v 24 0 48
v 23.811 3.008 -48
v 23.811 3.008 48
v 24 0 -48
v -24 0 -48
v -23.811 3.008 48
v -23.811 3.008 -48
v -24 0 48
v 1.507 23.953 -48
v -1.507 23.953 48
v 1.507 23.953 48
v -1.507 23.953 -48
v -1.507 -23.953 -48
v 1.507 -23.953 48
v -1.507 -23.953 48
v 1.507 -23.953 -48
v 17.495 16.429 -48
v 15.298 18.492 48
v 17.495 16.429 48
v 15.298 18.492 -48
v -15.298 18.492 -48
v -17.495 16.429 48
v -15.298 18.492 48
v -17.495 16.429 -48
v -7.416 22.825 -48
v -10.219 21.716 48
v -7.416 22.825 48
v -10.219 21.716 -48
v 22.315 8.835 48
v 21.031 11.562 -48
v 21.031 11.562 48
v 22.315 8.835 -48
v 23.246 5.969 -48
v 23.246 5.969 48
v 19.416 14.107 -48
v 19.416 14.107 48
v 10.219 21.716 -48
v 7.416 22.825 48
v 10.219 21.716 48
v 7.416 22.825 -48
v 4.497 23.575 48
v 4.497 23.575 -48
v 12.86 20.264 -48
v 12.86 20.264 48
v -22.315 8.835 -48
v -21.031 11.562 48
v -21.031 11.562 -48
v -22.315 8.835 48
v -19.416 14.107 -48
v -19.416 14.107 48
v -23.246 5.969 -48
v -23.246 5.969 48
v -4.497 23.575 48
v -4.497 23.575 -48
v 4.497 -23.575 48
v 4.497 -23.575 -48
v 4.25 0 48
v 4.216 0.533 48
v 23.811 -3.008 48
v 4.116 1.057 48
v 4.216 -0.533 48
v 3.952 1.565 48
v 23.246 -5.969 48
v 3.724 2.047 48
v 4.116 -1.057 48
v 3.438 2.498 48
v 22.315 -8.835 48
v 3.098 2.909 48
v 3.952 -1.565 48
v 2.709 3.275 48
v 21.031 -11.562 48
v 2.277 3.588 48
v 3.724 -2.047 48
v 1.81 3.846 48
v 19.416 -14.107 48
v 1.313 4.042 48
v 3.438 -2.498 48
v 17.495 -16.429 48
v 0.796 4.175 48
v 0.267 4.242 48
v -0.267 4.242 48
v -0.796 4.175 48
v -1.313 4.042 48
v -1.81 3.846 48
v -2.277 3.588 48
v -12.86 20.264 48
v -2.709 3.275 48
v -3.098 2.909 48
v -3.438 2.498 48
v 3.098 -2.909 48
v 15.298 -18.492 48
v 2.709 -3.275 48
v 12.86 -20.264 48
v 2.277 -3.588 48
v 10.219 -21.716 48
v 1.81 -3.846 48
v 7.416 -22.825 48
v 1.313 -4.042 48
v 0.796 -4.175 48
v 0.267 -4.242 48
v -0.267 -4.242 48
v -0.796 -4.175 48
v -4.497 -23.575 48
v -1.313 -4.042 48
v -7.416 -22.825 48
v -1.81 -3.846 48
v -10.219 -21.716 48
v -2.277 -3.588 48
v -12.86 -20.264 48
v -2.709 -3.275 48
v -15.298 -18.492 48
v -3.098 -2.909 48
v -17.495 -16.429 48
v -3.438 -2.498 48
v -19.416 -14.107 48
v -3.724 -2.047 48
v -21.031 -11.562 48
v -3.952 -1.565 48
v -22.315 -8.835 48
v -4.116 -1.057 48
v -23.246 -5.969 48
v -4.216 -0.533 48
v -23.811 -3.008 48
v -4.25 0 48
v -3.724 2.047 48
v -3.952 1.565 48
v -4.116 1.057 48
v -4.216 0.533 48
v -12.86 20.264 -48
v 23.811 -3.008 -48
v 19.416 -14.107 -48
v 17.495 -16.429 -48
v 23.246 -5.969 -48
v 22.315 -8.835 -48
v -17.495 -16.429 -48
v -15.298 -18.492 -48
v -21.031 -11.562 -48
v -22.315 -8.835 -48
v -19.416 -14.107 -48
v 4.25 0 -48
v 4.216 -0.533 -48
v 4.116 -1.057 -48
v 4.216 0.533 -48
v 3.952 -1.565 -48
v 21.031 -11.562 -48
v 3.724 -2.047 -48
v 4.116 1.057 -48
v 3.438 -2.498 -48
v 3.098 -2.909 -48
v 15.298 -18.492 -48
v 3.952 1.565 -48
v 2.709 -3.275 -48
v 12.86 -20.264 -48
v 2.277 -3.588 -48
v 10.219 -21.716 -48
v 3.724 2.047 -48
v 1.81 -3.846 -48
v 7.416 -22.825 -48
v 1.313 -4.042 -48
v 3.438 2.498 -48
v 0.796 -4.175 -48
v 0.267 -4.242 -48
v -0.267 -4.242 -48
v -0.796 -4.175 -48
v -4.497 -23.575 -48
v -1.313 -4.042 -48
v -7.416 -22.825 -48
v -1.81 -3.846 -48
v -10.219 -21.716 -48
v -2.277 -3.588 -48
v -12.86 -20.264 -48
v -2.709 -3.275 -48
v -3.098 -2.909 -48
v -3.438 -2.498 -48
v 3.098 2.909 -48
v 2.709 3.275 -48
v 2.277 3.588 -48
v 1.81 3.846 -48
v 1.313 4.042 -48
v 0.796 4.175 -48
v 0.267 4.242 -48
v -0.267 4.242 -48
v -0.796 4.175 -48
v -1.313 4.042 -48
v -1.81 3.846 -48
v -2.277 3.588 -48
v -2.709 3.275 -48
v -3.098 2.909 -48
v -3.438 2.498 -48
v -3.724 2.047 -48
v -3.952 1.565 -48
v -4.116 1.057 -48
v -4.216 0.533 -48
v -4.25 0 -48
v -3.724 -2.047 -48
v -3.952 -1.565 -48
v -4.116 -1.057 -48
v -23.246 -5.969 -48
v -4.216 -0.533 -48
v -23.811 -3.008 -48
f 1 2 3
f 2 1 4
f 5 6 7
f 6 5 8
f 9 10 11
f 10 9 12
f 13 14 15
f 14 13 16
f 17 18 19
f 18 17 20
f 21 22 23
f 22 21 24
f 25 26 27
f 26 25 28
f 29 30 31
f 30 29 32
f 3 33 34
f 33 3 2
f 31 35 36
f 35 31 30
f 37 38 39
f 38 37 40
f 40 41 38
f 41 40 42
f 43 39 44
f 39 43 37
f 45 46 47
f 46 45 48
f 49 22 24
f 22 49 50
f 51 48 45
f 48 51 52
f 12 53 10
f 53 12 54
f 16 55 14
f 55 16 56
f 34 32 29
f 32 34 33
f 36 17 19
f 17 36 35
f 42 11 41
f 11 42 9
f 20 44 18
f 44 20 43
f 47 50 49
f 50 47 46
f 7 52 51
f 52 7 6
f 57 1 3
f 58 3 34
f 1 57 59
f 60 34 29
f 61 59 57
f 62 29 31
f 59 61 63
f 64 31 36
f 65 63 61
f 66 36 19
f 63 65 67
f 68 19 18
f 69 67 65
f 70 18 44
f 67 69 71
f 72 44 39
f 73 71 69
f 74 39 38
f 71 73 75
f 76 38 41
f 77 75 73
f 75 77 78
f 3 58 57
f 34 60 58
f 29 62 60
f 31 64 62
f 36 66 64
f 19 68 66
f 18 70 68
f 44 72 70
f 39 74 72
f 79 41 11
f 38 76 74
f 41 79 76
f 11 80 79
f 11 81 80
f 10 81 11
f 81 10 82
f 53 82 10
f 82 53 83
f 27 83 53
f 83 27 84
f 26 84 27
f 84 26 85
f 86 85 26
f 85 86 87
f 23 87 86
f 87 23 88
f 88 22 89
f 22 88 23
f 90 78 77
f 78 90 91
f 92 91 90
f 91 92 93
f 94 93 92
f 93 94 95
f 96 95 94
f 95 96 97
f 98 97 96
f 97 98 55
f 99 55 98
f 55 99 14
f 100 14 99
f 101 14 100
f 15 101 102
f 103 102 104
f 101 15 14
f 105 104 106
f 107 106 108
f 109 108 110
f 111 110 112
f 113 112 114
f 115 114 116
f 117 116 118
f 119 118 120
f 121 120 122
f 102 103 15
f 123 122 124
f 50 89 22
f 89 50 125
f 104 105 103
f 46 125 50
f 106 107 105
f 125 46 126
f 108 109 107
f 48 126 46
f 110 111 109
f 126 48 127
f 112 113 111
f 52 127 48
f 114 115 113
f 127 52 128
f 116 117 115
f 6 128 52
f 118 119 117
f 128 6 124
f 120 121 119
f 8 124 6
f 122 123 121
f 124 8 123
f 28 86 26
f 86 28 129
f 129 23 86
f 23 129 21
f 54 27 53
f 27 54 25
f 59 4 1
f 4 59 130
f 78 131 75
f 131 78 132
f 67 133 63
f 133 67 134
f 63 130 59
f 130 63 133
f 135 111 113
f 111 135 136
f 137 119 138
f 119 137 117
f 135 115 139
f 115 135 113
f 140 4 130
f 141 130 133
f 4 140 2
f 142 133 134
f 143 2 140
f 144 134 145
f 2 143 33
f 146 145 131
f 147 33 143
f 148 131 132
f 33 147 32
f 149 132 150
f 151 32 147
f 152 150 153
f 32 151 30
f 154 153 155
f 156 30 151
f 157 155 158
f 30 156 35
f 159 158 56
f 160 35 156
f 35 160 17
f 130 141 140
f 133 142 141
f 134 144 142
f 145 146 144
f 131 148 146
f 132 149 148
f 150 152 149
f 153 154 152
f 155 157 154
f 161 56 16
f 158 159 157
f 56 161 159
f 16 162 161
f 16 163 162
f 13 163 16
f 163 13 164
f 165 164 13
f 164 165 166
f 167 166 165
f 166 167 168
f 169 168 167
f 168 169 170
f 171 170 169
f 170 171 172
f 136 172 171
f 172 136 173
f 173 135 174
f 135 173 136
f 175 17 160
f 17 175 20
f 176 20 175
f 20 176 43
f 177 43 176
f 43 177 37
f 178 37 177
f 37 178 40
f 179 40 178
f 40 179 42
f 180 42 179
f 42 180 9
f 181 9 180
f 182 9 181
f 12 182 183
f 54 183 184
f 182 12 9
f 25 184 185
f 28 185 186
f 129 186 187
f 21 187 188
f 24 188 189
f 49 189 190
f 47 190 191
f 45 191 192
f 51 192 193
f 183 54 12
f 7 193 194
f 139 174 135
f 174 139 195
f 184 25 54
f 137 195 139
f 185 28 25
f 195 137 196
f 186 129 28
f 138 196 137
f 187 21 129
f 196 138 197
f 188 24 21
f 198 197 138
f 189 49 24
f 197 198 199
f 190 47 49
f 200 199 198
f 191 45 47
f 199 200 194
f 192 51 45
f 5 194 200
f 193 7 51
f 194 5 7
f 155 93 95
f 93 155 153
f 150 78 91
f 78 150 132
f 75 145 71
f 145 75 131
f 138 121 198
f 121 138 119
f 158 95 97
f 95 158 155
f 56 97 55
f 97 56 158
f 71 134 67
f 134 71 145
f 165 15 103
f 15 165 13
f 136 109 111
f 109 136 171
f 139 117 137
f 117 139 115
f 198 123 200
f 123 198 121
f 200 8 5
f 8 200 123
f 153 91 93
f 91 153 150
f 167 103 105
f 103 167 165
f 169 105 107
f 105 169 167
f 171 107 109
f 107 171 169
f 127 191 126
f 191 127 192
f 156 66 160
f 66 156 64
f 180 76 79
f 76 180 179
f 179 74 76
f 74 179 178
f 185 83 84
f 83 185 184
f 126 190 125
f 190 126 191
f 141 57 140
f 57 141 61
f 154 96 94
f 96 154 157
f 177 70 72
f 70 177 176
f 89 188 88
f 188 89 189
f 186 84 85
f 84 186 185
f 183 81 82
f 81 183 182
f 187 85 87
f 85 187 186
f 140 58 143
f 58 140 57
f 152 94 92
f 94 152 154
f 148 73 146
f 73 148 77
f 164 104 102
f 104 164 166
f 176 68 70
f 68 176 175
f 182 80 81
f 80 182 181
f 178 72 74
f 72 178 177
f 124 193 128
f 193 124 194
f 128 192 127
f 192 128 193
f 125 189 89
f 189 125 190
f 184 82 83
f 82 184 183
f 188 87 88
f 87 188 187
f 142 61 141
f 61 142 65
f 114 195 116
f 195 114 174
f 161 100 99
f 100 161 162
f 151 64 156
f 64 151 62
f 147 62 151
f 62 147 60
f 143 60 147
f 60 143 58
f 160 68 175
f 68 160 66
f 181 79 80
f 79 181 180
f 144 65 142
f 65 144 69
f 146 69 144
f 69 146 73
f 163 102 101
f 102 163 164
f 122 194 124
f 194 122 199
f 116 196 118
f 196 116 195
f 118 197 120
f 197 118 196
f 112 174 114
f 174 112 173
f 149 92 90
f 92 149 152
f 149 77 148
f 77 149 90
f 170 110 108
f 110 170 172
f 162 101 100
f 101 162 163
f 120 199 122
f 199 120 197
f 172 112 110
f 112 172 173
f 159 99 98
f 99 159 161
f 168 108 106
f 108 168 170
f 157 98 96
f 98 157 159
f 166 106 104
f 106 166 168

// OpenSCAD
$fn = 50;


difference() {
	union() {
		translate(v = [0, 0, -48.0000000000]) {
			cylinder(h = 96, r = 24.0000000000);
		}
	}
	union() {
		translate(v = [0, 0, -100.0000000000]) {
			cylinder(h = 200, r = 4.2500000000);
		}
	}
}
